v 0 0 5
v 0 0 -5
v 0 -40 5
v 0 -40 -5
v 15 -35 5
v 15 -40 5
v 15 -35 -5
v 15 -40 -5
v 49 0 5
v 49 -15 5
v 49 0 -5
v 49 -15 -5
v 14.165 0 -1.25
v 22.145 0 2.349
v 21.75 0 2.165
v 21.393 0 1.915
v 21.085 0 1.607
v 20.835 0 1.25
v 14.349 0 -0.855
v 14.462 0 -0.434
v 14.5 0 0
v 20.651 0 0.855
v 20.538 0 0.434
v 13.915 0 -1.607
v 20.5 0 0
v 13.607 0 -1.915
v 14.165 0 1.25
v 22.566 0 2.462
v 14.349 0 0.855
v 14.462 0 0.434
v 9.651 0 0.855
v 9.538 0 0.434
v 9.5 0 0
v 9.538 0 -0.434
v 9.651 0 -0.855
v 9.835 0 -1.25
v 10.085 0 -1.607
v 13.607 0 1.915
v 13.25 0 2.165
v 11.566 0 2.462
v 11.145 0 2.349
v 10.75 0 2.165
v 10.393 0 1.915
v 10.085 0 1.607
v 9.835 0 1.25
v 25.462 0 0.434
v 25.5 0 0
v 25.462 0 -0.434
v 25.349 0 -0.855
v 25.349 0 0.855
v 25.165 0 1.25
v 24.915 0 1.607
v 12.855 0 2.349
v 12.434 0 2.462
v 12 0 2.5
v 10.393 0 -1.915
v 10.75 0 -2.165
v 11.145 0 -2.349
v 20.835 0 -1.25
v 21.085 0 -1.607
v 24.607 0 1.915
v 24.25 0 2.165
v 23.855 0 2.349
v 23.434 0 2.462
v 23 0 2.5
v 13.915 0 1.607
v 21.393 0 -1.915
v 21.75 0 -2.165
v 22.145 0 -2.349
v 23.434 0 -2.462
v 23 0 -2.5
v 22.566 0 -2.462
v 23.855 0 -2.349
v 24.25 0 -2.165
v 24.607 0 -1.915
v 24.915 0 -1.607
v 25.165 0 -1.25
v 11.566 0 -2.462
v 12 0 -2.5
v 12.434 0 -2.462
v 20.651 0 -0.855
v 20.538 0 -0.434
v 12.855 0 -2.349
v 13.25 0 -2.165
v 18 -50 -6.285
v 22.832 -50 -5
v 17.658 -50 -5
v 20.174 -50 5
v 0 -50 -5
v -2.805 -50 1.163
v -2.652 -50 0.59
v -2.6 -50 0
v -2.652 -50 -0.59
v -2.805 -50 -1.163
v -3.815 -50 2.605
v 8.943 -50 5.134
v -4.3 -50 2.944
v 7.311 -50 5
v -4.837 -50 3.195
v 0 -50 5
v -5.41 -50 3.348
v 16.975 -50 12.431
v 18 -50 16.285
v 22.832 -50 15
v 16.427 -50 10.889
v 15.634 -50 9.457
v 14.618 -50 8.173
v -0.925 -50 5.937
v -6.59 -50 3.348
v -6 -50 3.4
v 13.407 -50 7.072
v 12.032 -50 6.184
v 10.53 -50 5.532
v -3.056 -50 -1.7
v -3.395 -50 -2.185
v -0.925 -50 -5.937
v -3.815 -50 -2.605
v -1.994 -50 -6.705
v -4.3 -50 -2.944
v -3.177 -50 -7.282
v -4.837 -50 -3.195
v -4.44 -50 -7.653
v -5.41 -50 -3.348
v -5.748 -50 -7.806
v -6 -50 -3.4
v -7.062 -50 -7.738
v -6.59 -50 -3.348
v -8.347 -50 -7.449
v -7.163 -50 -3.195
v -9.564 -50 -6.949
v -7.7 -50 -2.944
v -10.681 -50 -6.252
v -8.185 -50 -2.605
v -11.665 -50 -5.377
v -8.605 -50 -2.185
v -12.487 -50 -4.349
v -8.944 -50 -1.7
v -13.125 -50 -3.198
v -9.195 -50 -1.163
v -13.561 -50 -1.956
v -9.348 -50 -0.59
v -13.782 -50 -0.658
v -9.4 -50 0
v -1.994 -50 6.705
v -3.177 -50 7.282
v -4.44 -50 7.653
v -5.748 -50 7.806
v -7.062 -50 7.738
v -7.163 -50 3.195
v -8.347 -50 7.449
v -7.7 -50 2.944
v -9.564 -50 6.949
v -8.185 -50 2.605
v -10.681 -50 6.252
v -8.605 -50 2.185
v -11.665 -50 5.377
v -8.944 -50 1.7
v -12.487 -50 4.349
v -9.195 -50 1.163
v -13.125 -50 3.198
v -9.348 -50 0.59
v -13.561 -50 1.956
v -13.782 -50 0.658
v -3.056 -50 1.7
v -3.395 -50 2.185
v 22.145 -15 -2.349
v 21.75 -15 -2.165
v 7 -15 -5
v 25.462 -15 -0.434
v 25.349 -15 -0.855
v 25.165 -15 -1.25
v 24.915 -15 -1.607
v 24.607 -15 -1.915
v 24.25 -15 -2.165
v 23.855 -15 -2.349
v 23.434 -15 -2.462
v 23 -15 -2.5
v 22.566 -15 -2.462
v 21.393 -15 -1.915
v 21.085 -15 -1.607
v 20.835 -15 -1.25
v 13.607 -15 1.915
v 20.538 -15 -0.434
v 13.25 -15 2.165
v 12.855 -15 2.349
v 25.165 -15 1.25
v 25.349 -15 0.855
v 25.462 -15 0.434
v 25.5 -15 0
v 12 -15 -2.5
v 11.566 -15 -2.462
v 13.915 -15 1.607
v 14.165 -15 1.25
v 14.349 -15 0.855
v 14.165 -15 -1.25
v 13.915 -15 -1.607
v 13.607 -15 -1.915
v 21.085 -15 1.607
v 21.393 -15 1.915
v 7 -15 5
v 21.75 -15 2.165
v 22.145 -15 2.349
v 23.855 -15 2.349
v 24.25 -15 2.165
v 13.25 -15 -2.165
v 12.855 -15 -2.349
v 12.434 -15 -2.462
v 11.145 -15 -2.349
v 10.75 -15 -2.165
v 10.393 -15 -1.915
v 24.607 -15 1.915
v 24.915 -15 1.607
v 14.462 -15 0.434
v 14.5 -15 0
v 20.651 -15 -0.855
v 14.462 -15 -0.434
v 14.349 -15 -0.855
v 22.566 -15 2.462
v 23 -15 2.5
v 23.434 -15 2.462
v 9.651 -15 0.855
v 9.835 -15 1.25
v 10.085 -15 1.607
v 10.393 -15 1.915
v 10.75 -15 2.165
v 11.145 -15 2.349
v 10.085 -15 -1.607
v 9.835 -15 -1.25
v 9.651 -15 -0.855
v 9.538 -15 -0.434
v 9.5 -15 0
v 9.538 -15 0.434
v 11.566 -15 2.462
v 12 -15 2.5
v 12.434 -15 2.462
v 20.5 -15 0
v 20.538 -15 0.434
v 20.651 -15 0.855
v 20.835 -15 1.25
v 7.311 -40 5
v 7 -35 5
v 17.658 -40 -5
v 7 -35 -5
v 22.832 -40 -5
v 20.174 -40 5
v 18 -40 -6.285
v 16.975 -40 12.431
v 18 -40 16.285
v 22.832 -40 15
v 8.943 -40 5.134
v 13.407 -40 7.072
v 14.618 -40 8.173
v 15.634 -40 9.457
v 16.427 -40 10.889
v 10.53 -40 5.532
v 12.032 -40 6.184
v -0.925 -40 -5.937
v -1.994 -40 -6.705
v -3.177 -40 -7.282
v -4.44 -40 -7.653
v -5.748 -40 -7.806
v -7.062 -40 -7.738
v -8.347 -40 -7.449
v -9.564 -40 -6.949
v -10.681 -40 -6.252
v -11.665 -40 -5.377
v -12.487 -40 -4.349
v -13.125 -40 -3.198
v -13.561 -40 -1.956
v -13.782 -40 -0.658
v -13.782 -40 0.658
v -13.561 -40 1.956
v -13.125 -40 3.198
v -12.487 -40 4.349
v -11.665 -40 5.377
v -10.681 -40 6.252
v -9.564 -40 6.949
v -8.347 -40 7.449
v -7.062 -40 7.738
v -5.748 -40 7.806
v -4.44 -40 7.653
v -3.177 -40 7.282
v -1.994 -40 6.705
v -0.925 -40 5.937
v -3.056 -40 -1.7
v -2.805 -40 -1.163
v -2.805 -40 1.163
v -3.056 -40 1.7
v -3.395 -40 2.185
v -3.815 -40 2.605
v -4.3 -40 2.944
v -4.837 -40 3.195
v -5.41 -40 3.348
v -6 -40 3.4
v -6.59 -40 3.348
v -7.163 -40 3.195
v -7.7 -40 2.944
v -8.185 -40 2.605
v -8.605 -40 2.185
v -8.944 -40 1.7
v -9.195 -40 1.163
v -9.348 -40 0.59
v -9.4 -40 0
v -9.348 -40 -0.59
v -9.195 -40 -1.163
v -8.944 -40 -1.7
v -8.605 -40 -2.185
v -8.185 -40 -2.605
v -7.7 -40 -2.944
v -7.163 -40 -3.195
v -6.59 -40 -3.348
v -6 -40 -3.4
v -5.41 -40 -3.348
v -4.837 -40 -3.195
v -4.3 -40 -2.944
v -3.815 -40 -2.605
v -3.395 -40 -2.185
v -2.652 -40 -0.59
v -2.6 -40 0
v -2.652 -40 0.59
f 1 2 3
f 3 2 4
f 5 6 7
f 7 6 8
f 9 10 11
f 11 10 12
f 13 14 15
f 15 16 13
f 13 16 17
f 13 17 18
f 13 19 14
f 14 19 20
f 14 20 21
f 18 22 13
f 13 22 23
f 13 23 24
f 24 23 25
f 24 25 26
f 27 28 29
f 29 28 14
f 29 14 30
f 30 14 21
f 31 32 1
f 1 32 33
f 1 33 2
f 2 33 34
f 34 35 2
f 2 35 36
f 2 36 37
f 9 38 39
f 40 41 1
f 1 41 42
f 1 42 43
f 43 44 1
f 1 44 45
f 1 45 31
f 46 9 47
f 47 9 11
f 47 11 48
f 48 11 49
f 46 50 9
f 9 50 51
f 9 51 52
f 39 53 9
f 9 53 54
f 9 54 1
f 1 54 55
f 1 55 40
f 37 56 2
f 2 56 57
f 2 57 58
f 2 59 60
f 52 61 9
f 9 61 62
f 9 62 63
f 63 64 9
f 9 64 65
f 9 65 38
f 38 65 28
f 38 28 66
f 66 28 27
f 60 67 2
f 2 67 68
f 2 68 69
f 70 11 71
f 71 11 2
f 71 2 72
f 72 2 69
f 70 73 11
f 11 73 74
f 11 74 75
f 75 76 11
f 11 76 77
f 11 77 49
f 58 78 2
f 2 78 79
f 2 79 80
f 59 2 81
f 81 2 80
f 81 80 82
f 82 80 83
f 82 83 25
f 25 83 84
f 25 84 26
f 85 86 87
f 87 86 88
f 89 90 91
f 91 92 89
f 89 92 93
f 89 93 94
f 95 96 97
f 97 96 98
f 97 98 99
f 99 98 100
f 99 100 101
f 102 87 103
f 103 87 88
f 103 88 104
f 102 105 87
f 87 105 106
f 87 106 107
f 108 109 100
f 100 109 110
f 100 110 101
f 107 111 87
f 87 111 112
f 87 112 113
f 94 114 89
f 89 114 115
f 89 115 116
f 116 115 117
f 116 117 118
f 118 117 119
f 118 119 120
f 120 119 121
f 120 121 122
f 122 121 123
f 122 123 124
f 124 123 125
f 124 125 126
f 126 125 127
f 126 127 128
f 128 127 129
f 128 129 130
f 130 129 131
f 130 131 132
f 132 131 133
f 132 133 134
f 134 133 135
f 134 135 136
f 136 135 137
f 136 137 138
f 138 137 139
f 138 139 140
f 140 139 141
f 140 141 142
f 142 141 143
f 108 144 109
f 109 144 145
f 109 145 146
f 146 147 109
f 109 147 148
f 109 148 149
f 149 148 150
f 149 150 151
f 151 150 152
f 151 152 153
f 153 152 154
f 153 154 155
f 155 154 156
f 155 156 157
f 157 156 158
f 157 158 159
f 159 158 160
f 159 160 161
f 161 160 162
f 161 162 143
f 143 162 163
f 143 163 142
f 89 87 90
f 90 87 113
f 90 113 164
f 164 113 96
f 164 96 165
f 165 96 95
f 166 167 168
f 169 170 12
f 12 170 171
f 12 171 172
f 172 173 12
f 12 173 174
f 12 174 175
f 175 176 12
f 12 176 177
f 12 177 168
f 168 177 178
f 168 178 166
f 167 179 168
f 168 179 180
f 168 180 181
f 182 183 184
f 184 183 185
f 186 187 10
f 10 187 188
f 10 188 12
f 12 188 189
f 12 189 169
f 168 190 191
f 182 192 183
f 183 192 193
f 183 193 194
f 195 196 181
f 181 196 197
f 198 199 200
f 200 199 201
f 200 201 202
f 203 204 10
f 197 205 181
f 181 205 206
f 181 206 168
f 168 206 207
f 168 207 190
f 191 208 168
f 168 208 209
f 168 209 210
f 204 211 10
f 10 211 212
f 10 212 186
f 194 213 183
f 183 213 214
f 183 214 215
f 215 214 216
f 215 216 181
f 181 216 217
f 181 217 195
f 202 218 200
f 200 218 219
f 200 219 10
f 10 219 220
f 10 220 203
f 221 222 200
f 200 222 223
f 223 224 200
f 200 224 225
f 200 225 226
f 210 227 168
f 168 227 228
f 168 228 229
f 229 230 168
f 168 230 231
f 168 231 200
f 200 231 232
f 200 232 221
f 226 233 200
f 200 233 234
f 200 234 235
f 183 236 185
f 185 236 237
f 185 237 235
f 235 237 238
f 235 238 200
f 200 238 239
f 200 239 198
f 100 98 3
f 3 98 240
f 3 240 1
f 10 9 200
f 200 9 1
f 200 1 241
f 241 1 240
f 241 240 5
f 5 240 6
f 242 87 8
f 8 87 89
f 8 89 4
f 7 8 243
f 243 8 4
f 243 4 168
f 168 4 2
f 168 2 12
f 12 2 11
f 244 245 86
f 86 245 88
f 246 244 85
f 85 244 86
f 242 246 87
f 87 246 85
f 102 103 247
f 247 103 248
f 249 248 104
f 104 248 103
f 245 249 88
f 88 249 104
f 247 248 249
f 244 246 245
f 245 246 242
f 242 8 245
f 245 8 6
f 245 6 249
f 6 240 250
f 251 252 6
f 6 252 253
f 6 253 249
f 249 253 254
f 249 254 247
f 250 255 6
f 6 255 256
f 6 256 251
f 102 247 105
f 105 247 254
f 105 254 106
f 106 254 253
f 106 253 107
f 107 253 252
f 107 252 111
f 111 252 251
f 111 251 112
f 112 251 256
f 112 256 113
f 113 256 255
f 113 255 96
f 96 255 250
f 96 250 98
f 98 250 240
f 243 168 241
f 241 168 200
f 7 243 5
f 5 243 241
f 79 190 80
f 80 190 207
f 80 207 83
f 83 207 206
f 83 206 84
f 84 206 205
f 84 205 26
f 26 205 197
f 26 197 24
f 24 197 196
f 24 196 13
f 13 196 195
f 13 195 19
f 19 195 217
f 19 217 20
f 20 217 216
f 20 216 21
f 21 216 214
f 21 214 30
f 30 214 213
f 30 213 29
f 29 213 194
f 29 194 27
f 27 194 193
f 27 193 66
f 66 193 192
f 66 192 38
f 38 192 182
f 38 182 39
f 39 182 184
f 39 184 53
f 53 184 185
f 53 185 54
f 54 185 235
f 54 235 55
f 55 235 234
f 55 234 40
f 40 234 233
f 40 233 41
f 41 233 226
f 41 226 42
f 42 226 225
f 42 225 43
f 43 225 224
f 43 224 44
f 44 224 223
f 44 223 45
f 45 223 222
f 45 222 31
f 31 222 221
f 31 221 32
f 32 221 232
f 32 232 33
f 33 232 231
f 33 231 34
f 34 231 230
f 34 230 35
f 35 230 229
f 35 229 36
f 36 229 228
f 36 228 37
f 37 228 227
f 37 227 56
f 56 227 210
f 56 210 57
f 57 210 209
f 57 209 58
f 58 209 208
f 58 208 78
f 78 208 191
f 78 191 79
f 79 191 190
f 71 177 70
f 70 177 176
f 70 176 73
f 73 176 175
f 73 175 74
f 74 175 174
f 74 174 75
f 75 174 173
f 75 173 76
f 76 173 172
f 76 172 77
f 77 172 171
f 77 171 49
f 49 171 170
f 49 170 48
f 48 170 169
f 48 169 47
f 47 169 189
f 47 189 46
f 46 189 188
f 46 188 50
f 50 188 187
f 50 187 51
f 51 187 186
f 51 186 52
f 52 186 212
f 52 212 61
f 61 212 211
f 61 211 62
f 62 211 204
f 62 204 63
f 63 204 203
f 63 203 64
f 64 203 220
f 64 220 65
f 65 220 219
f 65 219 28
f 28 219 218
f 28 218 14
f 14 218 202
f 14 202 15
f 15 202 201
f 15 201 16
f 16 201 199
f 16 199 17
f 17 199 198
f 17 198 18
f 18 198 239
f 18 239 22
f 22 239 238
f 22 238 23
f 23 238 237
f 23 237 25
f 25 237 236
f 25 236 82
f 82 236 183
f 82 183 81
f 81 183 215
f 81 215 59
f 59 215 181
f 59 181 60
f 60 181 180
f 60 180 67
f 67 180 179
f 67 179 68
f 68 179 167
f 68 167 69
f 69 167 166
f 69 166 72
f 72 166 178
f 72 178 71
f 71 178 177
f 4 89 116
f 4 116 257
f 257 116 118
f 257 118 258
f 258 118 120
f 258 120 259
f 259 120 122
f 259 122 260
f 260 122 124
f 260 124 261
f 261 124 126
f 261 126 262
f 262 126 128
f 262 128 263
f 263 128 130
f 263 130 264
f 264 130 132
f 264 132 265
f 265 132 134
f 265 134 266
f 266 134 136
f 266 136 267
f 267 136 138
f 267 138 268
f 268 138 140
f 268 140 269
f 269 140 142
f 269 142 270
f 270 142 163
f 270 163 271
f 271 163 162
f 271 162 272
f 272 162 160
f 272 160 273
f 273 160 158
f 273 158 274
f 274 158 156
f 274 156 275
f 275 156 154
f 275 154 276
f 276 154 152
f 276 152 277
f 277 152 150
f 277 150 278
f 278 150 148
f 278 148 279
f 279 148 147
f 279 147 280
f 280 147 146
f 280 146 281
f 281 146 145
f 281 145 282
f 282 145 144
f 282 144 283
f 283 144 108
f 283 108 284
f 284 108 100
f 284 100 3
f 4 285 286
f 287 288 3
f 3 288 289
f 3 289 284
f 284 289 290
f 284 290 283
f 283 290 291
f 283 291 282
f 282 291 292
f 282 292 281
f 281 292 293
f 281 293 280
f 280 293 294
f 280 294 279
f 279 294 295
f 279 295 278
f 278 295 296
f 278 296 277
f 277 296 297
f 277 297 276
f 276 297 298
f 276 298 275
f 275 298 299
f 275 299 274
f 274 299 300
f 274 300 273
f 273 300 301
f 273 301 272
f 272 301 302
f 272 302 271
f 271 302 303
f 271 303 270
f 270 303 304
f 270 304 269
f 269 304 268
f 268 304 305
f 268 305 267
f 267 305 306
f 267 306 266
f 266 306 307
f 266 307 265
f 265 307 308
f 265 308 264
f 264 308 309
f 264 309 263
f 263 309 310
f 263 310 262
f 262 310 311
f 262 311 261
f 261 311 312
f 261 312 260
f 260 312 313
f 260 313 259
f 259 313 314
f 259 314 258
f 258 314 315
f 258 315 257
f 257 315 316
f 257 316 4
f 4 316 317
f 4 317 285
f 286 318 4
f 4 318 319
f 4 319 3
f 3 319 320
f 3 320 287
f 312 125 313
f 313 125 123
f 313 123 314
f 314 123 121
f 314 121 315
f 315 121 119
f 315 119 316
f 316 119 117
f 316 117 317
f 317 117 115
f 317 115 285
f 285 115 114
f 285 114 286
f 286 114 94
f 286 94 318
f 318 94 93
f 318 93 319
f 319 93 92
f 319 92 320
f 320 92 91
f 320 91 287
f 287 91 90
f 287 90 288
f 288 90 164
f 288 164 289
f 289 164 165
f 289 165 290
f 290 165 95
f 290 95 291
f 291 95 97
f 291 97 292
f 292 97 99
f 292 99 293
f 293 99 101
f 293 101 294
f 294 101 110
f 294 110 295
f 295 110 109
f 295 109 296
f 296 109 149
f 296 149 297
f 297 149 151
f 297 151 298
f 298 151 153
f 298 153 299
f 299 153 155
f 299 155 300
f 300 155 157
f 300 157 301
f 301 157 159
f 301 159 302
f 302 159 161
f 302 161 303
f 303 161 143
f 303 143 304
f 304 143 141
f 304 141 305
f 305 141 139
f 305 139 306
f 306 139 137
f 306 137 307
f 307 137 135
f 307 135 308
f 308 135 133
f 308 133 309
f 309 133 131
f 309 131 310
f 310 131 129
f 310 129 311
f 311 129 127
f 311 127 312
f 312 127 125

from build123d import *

# Parameters (mm, degrees)
BOSS_EXTRUDE1_DEPTH = 5
BOSS_EXTRUDE2_DEPTH = 10
FILLET1_R           = 10
SKETCH3_W           = 8
SKETCH3_H           = 20
CUT_EXTRUDE1_DEPTH  = 74.171272574
SKETCH4_R           = 2.5
CUT_EXTRUDE2_DEPTH  = 63.379394923
SKETCH5_R           = 3.4
BOSS_EXTRUDE4_DEPTH = 10


with BuildPart() as part:
    # Sketch1 → Boss-Extrude1 (new, symmetric)
    with BuildSketch(Plane.XY):
        Polygon((49, 0), (0, 0), (0, -50), (15, -50), (15, -15), (49, -15), align=None)
    extrude(amount=BOSS_EXTRUDE1_DEPTH, both=True)

    # Sketch2 → Boss-Extrude2 (add)
    with BuildSketch(Plane.XZ.offset(50)):
        Polygon((22.832157544, -5), (18, -6.284621916), (15, 5), (18, 16.284621916), (22.832157544, 15), (20.173672375, 5), align=None)
        Polygon((15, -5), (17.658485169, -5), (15, 5), align=None)
        Polygon((18, 16.284621916), (15, 5), (20.173672375, 5), (22.832157544, 15), align=None)
    extrude(amount=-BOSS_EXTRUDE2_DEPTH)

    # Fillet1
    fillet1_edges = [part.edges().sort_by_distance(p)[0] for p in [
        (15, -45, 5),
    ]]
    fillet(fillet1_edges, radius=FILLET1_R)

    # Sketch3 → Cut-Extrude1 (cut, through all)
    with BuildSketch(Plane(origin=(0, 0, -5), x_dir=(-1, 0, 0), z_dir=(0, 0, -1))):
        with Locations((-11, -25)):
            Rectangle(SKETCH3_W, SKETCH3_H)
    extrude(amount=-CUT_EXTRUDE1_DEPTH, mode=Mode.SUBTRACT)

    # Sketch4 → Cut-Extrude2 (cut, through all)
    with BuildSketch(Plane.XZ.offset(15)):
        with Locations(Location((23, 0, 0), (0, 0, 270))):
            Circle(SKETCH4_R)
        with Locations(Location((12, 0, 0), (0, 0, 270))):
            Circle(SKETCH4_R)
    extrude(amount=-CUT_EXTRUDE2_DEPTH, mode=Mode.SUBTRACT)

    # Sketch5 → Boss-Extrude4 (add)
    with BuildSketch(Plane.XZ.offset(50)):
        with BuildLine():
            Line((0, 5), (0, -5))
            ThreePointArc((0, -5), (-13.810249676, 0), (0, 5))
        make_face()
        with Locations(Location((-6, 0, 0), (0, 0, 270))):
            Circle(SKETCH5_R, mode=Mode.SUBTRACT)
    extrude(amount=-BOSS_EXTRUDE4_DEPTH)


solid = part.part
